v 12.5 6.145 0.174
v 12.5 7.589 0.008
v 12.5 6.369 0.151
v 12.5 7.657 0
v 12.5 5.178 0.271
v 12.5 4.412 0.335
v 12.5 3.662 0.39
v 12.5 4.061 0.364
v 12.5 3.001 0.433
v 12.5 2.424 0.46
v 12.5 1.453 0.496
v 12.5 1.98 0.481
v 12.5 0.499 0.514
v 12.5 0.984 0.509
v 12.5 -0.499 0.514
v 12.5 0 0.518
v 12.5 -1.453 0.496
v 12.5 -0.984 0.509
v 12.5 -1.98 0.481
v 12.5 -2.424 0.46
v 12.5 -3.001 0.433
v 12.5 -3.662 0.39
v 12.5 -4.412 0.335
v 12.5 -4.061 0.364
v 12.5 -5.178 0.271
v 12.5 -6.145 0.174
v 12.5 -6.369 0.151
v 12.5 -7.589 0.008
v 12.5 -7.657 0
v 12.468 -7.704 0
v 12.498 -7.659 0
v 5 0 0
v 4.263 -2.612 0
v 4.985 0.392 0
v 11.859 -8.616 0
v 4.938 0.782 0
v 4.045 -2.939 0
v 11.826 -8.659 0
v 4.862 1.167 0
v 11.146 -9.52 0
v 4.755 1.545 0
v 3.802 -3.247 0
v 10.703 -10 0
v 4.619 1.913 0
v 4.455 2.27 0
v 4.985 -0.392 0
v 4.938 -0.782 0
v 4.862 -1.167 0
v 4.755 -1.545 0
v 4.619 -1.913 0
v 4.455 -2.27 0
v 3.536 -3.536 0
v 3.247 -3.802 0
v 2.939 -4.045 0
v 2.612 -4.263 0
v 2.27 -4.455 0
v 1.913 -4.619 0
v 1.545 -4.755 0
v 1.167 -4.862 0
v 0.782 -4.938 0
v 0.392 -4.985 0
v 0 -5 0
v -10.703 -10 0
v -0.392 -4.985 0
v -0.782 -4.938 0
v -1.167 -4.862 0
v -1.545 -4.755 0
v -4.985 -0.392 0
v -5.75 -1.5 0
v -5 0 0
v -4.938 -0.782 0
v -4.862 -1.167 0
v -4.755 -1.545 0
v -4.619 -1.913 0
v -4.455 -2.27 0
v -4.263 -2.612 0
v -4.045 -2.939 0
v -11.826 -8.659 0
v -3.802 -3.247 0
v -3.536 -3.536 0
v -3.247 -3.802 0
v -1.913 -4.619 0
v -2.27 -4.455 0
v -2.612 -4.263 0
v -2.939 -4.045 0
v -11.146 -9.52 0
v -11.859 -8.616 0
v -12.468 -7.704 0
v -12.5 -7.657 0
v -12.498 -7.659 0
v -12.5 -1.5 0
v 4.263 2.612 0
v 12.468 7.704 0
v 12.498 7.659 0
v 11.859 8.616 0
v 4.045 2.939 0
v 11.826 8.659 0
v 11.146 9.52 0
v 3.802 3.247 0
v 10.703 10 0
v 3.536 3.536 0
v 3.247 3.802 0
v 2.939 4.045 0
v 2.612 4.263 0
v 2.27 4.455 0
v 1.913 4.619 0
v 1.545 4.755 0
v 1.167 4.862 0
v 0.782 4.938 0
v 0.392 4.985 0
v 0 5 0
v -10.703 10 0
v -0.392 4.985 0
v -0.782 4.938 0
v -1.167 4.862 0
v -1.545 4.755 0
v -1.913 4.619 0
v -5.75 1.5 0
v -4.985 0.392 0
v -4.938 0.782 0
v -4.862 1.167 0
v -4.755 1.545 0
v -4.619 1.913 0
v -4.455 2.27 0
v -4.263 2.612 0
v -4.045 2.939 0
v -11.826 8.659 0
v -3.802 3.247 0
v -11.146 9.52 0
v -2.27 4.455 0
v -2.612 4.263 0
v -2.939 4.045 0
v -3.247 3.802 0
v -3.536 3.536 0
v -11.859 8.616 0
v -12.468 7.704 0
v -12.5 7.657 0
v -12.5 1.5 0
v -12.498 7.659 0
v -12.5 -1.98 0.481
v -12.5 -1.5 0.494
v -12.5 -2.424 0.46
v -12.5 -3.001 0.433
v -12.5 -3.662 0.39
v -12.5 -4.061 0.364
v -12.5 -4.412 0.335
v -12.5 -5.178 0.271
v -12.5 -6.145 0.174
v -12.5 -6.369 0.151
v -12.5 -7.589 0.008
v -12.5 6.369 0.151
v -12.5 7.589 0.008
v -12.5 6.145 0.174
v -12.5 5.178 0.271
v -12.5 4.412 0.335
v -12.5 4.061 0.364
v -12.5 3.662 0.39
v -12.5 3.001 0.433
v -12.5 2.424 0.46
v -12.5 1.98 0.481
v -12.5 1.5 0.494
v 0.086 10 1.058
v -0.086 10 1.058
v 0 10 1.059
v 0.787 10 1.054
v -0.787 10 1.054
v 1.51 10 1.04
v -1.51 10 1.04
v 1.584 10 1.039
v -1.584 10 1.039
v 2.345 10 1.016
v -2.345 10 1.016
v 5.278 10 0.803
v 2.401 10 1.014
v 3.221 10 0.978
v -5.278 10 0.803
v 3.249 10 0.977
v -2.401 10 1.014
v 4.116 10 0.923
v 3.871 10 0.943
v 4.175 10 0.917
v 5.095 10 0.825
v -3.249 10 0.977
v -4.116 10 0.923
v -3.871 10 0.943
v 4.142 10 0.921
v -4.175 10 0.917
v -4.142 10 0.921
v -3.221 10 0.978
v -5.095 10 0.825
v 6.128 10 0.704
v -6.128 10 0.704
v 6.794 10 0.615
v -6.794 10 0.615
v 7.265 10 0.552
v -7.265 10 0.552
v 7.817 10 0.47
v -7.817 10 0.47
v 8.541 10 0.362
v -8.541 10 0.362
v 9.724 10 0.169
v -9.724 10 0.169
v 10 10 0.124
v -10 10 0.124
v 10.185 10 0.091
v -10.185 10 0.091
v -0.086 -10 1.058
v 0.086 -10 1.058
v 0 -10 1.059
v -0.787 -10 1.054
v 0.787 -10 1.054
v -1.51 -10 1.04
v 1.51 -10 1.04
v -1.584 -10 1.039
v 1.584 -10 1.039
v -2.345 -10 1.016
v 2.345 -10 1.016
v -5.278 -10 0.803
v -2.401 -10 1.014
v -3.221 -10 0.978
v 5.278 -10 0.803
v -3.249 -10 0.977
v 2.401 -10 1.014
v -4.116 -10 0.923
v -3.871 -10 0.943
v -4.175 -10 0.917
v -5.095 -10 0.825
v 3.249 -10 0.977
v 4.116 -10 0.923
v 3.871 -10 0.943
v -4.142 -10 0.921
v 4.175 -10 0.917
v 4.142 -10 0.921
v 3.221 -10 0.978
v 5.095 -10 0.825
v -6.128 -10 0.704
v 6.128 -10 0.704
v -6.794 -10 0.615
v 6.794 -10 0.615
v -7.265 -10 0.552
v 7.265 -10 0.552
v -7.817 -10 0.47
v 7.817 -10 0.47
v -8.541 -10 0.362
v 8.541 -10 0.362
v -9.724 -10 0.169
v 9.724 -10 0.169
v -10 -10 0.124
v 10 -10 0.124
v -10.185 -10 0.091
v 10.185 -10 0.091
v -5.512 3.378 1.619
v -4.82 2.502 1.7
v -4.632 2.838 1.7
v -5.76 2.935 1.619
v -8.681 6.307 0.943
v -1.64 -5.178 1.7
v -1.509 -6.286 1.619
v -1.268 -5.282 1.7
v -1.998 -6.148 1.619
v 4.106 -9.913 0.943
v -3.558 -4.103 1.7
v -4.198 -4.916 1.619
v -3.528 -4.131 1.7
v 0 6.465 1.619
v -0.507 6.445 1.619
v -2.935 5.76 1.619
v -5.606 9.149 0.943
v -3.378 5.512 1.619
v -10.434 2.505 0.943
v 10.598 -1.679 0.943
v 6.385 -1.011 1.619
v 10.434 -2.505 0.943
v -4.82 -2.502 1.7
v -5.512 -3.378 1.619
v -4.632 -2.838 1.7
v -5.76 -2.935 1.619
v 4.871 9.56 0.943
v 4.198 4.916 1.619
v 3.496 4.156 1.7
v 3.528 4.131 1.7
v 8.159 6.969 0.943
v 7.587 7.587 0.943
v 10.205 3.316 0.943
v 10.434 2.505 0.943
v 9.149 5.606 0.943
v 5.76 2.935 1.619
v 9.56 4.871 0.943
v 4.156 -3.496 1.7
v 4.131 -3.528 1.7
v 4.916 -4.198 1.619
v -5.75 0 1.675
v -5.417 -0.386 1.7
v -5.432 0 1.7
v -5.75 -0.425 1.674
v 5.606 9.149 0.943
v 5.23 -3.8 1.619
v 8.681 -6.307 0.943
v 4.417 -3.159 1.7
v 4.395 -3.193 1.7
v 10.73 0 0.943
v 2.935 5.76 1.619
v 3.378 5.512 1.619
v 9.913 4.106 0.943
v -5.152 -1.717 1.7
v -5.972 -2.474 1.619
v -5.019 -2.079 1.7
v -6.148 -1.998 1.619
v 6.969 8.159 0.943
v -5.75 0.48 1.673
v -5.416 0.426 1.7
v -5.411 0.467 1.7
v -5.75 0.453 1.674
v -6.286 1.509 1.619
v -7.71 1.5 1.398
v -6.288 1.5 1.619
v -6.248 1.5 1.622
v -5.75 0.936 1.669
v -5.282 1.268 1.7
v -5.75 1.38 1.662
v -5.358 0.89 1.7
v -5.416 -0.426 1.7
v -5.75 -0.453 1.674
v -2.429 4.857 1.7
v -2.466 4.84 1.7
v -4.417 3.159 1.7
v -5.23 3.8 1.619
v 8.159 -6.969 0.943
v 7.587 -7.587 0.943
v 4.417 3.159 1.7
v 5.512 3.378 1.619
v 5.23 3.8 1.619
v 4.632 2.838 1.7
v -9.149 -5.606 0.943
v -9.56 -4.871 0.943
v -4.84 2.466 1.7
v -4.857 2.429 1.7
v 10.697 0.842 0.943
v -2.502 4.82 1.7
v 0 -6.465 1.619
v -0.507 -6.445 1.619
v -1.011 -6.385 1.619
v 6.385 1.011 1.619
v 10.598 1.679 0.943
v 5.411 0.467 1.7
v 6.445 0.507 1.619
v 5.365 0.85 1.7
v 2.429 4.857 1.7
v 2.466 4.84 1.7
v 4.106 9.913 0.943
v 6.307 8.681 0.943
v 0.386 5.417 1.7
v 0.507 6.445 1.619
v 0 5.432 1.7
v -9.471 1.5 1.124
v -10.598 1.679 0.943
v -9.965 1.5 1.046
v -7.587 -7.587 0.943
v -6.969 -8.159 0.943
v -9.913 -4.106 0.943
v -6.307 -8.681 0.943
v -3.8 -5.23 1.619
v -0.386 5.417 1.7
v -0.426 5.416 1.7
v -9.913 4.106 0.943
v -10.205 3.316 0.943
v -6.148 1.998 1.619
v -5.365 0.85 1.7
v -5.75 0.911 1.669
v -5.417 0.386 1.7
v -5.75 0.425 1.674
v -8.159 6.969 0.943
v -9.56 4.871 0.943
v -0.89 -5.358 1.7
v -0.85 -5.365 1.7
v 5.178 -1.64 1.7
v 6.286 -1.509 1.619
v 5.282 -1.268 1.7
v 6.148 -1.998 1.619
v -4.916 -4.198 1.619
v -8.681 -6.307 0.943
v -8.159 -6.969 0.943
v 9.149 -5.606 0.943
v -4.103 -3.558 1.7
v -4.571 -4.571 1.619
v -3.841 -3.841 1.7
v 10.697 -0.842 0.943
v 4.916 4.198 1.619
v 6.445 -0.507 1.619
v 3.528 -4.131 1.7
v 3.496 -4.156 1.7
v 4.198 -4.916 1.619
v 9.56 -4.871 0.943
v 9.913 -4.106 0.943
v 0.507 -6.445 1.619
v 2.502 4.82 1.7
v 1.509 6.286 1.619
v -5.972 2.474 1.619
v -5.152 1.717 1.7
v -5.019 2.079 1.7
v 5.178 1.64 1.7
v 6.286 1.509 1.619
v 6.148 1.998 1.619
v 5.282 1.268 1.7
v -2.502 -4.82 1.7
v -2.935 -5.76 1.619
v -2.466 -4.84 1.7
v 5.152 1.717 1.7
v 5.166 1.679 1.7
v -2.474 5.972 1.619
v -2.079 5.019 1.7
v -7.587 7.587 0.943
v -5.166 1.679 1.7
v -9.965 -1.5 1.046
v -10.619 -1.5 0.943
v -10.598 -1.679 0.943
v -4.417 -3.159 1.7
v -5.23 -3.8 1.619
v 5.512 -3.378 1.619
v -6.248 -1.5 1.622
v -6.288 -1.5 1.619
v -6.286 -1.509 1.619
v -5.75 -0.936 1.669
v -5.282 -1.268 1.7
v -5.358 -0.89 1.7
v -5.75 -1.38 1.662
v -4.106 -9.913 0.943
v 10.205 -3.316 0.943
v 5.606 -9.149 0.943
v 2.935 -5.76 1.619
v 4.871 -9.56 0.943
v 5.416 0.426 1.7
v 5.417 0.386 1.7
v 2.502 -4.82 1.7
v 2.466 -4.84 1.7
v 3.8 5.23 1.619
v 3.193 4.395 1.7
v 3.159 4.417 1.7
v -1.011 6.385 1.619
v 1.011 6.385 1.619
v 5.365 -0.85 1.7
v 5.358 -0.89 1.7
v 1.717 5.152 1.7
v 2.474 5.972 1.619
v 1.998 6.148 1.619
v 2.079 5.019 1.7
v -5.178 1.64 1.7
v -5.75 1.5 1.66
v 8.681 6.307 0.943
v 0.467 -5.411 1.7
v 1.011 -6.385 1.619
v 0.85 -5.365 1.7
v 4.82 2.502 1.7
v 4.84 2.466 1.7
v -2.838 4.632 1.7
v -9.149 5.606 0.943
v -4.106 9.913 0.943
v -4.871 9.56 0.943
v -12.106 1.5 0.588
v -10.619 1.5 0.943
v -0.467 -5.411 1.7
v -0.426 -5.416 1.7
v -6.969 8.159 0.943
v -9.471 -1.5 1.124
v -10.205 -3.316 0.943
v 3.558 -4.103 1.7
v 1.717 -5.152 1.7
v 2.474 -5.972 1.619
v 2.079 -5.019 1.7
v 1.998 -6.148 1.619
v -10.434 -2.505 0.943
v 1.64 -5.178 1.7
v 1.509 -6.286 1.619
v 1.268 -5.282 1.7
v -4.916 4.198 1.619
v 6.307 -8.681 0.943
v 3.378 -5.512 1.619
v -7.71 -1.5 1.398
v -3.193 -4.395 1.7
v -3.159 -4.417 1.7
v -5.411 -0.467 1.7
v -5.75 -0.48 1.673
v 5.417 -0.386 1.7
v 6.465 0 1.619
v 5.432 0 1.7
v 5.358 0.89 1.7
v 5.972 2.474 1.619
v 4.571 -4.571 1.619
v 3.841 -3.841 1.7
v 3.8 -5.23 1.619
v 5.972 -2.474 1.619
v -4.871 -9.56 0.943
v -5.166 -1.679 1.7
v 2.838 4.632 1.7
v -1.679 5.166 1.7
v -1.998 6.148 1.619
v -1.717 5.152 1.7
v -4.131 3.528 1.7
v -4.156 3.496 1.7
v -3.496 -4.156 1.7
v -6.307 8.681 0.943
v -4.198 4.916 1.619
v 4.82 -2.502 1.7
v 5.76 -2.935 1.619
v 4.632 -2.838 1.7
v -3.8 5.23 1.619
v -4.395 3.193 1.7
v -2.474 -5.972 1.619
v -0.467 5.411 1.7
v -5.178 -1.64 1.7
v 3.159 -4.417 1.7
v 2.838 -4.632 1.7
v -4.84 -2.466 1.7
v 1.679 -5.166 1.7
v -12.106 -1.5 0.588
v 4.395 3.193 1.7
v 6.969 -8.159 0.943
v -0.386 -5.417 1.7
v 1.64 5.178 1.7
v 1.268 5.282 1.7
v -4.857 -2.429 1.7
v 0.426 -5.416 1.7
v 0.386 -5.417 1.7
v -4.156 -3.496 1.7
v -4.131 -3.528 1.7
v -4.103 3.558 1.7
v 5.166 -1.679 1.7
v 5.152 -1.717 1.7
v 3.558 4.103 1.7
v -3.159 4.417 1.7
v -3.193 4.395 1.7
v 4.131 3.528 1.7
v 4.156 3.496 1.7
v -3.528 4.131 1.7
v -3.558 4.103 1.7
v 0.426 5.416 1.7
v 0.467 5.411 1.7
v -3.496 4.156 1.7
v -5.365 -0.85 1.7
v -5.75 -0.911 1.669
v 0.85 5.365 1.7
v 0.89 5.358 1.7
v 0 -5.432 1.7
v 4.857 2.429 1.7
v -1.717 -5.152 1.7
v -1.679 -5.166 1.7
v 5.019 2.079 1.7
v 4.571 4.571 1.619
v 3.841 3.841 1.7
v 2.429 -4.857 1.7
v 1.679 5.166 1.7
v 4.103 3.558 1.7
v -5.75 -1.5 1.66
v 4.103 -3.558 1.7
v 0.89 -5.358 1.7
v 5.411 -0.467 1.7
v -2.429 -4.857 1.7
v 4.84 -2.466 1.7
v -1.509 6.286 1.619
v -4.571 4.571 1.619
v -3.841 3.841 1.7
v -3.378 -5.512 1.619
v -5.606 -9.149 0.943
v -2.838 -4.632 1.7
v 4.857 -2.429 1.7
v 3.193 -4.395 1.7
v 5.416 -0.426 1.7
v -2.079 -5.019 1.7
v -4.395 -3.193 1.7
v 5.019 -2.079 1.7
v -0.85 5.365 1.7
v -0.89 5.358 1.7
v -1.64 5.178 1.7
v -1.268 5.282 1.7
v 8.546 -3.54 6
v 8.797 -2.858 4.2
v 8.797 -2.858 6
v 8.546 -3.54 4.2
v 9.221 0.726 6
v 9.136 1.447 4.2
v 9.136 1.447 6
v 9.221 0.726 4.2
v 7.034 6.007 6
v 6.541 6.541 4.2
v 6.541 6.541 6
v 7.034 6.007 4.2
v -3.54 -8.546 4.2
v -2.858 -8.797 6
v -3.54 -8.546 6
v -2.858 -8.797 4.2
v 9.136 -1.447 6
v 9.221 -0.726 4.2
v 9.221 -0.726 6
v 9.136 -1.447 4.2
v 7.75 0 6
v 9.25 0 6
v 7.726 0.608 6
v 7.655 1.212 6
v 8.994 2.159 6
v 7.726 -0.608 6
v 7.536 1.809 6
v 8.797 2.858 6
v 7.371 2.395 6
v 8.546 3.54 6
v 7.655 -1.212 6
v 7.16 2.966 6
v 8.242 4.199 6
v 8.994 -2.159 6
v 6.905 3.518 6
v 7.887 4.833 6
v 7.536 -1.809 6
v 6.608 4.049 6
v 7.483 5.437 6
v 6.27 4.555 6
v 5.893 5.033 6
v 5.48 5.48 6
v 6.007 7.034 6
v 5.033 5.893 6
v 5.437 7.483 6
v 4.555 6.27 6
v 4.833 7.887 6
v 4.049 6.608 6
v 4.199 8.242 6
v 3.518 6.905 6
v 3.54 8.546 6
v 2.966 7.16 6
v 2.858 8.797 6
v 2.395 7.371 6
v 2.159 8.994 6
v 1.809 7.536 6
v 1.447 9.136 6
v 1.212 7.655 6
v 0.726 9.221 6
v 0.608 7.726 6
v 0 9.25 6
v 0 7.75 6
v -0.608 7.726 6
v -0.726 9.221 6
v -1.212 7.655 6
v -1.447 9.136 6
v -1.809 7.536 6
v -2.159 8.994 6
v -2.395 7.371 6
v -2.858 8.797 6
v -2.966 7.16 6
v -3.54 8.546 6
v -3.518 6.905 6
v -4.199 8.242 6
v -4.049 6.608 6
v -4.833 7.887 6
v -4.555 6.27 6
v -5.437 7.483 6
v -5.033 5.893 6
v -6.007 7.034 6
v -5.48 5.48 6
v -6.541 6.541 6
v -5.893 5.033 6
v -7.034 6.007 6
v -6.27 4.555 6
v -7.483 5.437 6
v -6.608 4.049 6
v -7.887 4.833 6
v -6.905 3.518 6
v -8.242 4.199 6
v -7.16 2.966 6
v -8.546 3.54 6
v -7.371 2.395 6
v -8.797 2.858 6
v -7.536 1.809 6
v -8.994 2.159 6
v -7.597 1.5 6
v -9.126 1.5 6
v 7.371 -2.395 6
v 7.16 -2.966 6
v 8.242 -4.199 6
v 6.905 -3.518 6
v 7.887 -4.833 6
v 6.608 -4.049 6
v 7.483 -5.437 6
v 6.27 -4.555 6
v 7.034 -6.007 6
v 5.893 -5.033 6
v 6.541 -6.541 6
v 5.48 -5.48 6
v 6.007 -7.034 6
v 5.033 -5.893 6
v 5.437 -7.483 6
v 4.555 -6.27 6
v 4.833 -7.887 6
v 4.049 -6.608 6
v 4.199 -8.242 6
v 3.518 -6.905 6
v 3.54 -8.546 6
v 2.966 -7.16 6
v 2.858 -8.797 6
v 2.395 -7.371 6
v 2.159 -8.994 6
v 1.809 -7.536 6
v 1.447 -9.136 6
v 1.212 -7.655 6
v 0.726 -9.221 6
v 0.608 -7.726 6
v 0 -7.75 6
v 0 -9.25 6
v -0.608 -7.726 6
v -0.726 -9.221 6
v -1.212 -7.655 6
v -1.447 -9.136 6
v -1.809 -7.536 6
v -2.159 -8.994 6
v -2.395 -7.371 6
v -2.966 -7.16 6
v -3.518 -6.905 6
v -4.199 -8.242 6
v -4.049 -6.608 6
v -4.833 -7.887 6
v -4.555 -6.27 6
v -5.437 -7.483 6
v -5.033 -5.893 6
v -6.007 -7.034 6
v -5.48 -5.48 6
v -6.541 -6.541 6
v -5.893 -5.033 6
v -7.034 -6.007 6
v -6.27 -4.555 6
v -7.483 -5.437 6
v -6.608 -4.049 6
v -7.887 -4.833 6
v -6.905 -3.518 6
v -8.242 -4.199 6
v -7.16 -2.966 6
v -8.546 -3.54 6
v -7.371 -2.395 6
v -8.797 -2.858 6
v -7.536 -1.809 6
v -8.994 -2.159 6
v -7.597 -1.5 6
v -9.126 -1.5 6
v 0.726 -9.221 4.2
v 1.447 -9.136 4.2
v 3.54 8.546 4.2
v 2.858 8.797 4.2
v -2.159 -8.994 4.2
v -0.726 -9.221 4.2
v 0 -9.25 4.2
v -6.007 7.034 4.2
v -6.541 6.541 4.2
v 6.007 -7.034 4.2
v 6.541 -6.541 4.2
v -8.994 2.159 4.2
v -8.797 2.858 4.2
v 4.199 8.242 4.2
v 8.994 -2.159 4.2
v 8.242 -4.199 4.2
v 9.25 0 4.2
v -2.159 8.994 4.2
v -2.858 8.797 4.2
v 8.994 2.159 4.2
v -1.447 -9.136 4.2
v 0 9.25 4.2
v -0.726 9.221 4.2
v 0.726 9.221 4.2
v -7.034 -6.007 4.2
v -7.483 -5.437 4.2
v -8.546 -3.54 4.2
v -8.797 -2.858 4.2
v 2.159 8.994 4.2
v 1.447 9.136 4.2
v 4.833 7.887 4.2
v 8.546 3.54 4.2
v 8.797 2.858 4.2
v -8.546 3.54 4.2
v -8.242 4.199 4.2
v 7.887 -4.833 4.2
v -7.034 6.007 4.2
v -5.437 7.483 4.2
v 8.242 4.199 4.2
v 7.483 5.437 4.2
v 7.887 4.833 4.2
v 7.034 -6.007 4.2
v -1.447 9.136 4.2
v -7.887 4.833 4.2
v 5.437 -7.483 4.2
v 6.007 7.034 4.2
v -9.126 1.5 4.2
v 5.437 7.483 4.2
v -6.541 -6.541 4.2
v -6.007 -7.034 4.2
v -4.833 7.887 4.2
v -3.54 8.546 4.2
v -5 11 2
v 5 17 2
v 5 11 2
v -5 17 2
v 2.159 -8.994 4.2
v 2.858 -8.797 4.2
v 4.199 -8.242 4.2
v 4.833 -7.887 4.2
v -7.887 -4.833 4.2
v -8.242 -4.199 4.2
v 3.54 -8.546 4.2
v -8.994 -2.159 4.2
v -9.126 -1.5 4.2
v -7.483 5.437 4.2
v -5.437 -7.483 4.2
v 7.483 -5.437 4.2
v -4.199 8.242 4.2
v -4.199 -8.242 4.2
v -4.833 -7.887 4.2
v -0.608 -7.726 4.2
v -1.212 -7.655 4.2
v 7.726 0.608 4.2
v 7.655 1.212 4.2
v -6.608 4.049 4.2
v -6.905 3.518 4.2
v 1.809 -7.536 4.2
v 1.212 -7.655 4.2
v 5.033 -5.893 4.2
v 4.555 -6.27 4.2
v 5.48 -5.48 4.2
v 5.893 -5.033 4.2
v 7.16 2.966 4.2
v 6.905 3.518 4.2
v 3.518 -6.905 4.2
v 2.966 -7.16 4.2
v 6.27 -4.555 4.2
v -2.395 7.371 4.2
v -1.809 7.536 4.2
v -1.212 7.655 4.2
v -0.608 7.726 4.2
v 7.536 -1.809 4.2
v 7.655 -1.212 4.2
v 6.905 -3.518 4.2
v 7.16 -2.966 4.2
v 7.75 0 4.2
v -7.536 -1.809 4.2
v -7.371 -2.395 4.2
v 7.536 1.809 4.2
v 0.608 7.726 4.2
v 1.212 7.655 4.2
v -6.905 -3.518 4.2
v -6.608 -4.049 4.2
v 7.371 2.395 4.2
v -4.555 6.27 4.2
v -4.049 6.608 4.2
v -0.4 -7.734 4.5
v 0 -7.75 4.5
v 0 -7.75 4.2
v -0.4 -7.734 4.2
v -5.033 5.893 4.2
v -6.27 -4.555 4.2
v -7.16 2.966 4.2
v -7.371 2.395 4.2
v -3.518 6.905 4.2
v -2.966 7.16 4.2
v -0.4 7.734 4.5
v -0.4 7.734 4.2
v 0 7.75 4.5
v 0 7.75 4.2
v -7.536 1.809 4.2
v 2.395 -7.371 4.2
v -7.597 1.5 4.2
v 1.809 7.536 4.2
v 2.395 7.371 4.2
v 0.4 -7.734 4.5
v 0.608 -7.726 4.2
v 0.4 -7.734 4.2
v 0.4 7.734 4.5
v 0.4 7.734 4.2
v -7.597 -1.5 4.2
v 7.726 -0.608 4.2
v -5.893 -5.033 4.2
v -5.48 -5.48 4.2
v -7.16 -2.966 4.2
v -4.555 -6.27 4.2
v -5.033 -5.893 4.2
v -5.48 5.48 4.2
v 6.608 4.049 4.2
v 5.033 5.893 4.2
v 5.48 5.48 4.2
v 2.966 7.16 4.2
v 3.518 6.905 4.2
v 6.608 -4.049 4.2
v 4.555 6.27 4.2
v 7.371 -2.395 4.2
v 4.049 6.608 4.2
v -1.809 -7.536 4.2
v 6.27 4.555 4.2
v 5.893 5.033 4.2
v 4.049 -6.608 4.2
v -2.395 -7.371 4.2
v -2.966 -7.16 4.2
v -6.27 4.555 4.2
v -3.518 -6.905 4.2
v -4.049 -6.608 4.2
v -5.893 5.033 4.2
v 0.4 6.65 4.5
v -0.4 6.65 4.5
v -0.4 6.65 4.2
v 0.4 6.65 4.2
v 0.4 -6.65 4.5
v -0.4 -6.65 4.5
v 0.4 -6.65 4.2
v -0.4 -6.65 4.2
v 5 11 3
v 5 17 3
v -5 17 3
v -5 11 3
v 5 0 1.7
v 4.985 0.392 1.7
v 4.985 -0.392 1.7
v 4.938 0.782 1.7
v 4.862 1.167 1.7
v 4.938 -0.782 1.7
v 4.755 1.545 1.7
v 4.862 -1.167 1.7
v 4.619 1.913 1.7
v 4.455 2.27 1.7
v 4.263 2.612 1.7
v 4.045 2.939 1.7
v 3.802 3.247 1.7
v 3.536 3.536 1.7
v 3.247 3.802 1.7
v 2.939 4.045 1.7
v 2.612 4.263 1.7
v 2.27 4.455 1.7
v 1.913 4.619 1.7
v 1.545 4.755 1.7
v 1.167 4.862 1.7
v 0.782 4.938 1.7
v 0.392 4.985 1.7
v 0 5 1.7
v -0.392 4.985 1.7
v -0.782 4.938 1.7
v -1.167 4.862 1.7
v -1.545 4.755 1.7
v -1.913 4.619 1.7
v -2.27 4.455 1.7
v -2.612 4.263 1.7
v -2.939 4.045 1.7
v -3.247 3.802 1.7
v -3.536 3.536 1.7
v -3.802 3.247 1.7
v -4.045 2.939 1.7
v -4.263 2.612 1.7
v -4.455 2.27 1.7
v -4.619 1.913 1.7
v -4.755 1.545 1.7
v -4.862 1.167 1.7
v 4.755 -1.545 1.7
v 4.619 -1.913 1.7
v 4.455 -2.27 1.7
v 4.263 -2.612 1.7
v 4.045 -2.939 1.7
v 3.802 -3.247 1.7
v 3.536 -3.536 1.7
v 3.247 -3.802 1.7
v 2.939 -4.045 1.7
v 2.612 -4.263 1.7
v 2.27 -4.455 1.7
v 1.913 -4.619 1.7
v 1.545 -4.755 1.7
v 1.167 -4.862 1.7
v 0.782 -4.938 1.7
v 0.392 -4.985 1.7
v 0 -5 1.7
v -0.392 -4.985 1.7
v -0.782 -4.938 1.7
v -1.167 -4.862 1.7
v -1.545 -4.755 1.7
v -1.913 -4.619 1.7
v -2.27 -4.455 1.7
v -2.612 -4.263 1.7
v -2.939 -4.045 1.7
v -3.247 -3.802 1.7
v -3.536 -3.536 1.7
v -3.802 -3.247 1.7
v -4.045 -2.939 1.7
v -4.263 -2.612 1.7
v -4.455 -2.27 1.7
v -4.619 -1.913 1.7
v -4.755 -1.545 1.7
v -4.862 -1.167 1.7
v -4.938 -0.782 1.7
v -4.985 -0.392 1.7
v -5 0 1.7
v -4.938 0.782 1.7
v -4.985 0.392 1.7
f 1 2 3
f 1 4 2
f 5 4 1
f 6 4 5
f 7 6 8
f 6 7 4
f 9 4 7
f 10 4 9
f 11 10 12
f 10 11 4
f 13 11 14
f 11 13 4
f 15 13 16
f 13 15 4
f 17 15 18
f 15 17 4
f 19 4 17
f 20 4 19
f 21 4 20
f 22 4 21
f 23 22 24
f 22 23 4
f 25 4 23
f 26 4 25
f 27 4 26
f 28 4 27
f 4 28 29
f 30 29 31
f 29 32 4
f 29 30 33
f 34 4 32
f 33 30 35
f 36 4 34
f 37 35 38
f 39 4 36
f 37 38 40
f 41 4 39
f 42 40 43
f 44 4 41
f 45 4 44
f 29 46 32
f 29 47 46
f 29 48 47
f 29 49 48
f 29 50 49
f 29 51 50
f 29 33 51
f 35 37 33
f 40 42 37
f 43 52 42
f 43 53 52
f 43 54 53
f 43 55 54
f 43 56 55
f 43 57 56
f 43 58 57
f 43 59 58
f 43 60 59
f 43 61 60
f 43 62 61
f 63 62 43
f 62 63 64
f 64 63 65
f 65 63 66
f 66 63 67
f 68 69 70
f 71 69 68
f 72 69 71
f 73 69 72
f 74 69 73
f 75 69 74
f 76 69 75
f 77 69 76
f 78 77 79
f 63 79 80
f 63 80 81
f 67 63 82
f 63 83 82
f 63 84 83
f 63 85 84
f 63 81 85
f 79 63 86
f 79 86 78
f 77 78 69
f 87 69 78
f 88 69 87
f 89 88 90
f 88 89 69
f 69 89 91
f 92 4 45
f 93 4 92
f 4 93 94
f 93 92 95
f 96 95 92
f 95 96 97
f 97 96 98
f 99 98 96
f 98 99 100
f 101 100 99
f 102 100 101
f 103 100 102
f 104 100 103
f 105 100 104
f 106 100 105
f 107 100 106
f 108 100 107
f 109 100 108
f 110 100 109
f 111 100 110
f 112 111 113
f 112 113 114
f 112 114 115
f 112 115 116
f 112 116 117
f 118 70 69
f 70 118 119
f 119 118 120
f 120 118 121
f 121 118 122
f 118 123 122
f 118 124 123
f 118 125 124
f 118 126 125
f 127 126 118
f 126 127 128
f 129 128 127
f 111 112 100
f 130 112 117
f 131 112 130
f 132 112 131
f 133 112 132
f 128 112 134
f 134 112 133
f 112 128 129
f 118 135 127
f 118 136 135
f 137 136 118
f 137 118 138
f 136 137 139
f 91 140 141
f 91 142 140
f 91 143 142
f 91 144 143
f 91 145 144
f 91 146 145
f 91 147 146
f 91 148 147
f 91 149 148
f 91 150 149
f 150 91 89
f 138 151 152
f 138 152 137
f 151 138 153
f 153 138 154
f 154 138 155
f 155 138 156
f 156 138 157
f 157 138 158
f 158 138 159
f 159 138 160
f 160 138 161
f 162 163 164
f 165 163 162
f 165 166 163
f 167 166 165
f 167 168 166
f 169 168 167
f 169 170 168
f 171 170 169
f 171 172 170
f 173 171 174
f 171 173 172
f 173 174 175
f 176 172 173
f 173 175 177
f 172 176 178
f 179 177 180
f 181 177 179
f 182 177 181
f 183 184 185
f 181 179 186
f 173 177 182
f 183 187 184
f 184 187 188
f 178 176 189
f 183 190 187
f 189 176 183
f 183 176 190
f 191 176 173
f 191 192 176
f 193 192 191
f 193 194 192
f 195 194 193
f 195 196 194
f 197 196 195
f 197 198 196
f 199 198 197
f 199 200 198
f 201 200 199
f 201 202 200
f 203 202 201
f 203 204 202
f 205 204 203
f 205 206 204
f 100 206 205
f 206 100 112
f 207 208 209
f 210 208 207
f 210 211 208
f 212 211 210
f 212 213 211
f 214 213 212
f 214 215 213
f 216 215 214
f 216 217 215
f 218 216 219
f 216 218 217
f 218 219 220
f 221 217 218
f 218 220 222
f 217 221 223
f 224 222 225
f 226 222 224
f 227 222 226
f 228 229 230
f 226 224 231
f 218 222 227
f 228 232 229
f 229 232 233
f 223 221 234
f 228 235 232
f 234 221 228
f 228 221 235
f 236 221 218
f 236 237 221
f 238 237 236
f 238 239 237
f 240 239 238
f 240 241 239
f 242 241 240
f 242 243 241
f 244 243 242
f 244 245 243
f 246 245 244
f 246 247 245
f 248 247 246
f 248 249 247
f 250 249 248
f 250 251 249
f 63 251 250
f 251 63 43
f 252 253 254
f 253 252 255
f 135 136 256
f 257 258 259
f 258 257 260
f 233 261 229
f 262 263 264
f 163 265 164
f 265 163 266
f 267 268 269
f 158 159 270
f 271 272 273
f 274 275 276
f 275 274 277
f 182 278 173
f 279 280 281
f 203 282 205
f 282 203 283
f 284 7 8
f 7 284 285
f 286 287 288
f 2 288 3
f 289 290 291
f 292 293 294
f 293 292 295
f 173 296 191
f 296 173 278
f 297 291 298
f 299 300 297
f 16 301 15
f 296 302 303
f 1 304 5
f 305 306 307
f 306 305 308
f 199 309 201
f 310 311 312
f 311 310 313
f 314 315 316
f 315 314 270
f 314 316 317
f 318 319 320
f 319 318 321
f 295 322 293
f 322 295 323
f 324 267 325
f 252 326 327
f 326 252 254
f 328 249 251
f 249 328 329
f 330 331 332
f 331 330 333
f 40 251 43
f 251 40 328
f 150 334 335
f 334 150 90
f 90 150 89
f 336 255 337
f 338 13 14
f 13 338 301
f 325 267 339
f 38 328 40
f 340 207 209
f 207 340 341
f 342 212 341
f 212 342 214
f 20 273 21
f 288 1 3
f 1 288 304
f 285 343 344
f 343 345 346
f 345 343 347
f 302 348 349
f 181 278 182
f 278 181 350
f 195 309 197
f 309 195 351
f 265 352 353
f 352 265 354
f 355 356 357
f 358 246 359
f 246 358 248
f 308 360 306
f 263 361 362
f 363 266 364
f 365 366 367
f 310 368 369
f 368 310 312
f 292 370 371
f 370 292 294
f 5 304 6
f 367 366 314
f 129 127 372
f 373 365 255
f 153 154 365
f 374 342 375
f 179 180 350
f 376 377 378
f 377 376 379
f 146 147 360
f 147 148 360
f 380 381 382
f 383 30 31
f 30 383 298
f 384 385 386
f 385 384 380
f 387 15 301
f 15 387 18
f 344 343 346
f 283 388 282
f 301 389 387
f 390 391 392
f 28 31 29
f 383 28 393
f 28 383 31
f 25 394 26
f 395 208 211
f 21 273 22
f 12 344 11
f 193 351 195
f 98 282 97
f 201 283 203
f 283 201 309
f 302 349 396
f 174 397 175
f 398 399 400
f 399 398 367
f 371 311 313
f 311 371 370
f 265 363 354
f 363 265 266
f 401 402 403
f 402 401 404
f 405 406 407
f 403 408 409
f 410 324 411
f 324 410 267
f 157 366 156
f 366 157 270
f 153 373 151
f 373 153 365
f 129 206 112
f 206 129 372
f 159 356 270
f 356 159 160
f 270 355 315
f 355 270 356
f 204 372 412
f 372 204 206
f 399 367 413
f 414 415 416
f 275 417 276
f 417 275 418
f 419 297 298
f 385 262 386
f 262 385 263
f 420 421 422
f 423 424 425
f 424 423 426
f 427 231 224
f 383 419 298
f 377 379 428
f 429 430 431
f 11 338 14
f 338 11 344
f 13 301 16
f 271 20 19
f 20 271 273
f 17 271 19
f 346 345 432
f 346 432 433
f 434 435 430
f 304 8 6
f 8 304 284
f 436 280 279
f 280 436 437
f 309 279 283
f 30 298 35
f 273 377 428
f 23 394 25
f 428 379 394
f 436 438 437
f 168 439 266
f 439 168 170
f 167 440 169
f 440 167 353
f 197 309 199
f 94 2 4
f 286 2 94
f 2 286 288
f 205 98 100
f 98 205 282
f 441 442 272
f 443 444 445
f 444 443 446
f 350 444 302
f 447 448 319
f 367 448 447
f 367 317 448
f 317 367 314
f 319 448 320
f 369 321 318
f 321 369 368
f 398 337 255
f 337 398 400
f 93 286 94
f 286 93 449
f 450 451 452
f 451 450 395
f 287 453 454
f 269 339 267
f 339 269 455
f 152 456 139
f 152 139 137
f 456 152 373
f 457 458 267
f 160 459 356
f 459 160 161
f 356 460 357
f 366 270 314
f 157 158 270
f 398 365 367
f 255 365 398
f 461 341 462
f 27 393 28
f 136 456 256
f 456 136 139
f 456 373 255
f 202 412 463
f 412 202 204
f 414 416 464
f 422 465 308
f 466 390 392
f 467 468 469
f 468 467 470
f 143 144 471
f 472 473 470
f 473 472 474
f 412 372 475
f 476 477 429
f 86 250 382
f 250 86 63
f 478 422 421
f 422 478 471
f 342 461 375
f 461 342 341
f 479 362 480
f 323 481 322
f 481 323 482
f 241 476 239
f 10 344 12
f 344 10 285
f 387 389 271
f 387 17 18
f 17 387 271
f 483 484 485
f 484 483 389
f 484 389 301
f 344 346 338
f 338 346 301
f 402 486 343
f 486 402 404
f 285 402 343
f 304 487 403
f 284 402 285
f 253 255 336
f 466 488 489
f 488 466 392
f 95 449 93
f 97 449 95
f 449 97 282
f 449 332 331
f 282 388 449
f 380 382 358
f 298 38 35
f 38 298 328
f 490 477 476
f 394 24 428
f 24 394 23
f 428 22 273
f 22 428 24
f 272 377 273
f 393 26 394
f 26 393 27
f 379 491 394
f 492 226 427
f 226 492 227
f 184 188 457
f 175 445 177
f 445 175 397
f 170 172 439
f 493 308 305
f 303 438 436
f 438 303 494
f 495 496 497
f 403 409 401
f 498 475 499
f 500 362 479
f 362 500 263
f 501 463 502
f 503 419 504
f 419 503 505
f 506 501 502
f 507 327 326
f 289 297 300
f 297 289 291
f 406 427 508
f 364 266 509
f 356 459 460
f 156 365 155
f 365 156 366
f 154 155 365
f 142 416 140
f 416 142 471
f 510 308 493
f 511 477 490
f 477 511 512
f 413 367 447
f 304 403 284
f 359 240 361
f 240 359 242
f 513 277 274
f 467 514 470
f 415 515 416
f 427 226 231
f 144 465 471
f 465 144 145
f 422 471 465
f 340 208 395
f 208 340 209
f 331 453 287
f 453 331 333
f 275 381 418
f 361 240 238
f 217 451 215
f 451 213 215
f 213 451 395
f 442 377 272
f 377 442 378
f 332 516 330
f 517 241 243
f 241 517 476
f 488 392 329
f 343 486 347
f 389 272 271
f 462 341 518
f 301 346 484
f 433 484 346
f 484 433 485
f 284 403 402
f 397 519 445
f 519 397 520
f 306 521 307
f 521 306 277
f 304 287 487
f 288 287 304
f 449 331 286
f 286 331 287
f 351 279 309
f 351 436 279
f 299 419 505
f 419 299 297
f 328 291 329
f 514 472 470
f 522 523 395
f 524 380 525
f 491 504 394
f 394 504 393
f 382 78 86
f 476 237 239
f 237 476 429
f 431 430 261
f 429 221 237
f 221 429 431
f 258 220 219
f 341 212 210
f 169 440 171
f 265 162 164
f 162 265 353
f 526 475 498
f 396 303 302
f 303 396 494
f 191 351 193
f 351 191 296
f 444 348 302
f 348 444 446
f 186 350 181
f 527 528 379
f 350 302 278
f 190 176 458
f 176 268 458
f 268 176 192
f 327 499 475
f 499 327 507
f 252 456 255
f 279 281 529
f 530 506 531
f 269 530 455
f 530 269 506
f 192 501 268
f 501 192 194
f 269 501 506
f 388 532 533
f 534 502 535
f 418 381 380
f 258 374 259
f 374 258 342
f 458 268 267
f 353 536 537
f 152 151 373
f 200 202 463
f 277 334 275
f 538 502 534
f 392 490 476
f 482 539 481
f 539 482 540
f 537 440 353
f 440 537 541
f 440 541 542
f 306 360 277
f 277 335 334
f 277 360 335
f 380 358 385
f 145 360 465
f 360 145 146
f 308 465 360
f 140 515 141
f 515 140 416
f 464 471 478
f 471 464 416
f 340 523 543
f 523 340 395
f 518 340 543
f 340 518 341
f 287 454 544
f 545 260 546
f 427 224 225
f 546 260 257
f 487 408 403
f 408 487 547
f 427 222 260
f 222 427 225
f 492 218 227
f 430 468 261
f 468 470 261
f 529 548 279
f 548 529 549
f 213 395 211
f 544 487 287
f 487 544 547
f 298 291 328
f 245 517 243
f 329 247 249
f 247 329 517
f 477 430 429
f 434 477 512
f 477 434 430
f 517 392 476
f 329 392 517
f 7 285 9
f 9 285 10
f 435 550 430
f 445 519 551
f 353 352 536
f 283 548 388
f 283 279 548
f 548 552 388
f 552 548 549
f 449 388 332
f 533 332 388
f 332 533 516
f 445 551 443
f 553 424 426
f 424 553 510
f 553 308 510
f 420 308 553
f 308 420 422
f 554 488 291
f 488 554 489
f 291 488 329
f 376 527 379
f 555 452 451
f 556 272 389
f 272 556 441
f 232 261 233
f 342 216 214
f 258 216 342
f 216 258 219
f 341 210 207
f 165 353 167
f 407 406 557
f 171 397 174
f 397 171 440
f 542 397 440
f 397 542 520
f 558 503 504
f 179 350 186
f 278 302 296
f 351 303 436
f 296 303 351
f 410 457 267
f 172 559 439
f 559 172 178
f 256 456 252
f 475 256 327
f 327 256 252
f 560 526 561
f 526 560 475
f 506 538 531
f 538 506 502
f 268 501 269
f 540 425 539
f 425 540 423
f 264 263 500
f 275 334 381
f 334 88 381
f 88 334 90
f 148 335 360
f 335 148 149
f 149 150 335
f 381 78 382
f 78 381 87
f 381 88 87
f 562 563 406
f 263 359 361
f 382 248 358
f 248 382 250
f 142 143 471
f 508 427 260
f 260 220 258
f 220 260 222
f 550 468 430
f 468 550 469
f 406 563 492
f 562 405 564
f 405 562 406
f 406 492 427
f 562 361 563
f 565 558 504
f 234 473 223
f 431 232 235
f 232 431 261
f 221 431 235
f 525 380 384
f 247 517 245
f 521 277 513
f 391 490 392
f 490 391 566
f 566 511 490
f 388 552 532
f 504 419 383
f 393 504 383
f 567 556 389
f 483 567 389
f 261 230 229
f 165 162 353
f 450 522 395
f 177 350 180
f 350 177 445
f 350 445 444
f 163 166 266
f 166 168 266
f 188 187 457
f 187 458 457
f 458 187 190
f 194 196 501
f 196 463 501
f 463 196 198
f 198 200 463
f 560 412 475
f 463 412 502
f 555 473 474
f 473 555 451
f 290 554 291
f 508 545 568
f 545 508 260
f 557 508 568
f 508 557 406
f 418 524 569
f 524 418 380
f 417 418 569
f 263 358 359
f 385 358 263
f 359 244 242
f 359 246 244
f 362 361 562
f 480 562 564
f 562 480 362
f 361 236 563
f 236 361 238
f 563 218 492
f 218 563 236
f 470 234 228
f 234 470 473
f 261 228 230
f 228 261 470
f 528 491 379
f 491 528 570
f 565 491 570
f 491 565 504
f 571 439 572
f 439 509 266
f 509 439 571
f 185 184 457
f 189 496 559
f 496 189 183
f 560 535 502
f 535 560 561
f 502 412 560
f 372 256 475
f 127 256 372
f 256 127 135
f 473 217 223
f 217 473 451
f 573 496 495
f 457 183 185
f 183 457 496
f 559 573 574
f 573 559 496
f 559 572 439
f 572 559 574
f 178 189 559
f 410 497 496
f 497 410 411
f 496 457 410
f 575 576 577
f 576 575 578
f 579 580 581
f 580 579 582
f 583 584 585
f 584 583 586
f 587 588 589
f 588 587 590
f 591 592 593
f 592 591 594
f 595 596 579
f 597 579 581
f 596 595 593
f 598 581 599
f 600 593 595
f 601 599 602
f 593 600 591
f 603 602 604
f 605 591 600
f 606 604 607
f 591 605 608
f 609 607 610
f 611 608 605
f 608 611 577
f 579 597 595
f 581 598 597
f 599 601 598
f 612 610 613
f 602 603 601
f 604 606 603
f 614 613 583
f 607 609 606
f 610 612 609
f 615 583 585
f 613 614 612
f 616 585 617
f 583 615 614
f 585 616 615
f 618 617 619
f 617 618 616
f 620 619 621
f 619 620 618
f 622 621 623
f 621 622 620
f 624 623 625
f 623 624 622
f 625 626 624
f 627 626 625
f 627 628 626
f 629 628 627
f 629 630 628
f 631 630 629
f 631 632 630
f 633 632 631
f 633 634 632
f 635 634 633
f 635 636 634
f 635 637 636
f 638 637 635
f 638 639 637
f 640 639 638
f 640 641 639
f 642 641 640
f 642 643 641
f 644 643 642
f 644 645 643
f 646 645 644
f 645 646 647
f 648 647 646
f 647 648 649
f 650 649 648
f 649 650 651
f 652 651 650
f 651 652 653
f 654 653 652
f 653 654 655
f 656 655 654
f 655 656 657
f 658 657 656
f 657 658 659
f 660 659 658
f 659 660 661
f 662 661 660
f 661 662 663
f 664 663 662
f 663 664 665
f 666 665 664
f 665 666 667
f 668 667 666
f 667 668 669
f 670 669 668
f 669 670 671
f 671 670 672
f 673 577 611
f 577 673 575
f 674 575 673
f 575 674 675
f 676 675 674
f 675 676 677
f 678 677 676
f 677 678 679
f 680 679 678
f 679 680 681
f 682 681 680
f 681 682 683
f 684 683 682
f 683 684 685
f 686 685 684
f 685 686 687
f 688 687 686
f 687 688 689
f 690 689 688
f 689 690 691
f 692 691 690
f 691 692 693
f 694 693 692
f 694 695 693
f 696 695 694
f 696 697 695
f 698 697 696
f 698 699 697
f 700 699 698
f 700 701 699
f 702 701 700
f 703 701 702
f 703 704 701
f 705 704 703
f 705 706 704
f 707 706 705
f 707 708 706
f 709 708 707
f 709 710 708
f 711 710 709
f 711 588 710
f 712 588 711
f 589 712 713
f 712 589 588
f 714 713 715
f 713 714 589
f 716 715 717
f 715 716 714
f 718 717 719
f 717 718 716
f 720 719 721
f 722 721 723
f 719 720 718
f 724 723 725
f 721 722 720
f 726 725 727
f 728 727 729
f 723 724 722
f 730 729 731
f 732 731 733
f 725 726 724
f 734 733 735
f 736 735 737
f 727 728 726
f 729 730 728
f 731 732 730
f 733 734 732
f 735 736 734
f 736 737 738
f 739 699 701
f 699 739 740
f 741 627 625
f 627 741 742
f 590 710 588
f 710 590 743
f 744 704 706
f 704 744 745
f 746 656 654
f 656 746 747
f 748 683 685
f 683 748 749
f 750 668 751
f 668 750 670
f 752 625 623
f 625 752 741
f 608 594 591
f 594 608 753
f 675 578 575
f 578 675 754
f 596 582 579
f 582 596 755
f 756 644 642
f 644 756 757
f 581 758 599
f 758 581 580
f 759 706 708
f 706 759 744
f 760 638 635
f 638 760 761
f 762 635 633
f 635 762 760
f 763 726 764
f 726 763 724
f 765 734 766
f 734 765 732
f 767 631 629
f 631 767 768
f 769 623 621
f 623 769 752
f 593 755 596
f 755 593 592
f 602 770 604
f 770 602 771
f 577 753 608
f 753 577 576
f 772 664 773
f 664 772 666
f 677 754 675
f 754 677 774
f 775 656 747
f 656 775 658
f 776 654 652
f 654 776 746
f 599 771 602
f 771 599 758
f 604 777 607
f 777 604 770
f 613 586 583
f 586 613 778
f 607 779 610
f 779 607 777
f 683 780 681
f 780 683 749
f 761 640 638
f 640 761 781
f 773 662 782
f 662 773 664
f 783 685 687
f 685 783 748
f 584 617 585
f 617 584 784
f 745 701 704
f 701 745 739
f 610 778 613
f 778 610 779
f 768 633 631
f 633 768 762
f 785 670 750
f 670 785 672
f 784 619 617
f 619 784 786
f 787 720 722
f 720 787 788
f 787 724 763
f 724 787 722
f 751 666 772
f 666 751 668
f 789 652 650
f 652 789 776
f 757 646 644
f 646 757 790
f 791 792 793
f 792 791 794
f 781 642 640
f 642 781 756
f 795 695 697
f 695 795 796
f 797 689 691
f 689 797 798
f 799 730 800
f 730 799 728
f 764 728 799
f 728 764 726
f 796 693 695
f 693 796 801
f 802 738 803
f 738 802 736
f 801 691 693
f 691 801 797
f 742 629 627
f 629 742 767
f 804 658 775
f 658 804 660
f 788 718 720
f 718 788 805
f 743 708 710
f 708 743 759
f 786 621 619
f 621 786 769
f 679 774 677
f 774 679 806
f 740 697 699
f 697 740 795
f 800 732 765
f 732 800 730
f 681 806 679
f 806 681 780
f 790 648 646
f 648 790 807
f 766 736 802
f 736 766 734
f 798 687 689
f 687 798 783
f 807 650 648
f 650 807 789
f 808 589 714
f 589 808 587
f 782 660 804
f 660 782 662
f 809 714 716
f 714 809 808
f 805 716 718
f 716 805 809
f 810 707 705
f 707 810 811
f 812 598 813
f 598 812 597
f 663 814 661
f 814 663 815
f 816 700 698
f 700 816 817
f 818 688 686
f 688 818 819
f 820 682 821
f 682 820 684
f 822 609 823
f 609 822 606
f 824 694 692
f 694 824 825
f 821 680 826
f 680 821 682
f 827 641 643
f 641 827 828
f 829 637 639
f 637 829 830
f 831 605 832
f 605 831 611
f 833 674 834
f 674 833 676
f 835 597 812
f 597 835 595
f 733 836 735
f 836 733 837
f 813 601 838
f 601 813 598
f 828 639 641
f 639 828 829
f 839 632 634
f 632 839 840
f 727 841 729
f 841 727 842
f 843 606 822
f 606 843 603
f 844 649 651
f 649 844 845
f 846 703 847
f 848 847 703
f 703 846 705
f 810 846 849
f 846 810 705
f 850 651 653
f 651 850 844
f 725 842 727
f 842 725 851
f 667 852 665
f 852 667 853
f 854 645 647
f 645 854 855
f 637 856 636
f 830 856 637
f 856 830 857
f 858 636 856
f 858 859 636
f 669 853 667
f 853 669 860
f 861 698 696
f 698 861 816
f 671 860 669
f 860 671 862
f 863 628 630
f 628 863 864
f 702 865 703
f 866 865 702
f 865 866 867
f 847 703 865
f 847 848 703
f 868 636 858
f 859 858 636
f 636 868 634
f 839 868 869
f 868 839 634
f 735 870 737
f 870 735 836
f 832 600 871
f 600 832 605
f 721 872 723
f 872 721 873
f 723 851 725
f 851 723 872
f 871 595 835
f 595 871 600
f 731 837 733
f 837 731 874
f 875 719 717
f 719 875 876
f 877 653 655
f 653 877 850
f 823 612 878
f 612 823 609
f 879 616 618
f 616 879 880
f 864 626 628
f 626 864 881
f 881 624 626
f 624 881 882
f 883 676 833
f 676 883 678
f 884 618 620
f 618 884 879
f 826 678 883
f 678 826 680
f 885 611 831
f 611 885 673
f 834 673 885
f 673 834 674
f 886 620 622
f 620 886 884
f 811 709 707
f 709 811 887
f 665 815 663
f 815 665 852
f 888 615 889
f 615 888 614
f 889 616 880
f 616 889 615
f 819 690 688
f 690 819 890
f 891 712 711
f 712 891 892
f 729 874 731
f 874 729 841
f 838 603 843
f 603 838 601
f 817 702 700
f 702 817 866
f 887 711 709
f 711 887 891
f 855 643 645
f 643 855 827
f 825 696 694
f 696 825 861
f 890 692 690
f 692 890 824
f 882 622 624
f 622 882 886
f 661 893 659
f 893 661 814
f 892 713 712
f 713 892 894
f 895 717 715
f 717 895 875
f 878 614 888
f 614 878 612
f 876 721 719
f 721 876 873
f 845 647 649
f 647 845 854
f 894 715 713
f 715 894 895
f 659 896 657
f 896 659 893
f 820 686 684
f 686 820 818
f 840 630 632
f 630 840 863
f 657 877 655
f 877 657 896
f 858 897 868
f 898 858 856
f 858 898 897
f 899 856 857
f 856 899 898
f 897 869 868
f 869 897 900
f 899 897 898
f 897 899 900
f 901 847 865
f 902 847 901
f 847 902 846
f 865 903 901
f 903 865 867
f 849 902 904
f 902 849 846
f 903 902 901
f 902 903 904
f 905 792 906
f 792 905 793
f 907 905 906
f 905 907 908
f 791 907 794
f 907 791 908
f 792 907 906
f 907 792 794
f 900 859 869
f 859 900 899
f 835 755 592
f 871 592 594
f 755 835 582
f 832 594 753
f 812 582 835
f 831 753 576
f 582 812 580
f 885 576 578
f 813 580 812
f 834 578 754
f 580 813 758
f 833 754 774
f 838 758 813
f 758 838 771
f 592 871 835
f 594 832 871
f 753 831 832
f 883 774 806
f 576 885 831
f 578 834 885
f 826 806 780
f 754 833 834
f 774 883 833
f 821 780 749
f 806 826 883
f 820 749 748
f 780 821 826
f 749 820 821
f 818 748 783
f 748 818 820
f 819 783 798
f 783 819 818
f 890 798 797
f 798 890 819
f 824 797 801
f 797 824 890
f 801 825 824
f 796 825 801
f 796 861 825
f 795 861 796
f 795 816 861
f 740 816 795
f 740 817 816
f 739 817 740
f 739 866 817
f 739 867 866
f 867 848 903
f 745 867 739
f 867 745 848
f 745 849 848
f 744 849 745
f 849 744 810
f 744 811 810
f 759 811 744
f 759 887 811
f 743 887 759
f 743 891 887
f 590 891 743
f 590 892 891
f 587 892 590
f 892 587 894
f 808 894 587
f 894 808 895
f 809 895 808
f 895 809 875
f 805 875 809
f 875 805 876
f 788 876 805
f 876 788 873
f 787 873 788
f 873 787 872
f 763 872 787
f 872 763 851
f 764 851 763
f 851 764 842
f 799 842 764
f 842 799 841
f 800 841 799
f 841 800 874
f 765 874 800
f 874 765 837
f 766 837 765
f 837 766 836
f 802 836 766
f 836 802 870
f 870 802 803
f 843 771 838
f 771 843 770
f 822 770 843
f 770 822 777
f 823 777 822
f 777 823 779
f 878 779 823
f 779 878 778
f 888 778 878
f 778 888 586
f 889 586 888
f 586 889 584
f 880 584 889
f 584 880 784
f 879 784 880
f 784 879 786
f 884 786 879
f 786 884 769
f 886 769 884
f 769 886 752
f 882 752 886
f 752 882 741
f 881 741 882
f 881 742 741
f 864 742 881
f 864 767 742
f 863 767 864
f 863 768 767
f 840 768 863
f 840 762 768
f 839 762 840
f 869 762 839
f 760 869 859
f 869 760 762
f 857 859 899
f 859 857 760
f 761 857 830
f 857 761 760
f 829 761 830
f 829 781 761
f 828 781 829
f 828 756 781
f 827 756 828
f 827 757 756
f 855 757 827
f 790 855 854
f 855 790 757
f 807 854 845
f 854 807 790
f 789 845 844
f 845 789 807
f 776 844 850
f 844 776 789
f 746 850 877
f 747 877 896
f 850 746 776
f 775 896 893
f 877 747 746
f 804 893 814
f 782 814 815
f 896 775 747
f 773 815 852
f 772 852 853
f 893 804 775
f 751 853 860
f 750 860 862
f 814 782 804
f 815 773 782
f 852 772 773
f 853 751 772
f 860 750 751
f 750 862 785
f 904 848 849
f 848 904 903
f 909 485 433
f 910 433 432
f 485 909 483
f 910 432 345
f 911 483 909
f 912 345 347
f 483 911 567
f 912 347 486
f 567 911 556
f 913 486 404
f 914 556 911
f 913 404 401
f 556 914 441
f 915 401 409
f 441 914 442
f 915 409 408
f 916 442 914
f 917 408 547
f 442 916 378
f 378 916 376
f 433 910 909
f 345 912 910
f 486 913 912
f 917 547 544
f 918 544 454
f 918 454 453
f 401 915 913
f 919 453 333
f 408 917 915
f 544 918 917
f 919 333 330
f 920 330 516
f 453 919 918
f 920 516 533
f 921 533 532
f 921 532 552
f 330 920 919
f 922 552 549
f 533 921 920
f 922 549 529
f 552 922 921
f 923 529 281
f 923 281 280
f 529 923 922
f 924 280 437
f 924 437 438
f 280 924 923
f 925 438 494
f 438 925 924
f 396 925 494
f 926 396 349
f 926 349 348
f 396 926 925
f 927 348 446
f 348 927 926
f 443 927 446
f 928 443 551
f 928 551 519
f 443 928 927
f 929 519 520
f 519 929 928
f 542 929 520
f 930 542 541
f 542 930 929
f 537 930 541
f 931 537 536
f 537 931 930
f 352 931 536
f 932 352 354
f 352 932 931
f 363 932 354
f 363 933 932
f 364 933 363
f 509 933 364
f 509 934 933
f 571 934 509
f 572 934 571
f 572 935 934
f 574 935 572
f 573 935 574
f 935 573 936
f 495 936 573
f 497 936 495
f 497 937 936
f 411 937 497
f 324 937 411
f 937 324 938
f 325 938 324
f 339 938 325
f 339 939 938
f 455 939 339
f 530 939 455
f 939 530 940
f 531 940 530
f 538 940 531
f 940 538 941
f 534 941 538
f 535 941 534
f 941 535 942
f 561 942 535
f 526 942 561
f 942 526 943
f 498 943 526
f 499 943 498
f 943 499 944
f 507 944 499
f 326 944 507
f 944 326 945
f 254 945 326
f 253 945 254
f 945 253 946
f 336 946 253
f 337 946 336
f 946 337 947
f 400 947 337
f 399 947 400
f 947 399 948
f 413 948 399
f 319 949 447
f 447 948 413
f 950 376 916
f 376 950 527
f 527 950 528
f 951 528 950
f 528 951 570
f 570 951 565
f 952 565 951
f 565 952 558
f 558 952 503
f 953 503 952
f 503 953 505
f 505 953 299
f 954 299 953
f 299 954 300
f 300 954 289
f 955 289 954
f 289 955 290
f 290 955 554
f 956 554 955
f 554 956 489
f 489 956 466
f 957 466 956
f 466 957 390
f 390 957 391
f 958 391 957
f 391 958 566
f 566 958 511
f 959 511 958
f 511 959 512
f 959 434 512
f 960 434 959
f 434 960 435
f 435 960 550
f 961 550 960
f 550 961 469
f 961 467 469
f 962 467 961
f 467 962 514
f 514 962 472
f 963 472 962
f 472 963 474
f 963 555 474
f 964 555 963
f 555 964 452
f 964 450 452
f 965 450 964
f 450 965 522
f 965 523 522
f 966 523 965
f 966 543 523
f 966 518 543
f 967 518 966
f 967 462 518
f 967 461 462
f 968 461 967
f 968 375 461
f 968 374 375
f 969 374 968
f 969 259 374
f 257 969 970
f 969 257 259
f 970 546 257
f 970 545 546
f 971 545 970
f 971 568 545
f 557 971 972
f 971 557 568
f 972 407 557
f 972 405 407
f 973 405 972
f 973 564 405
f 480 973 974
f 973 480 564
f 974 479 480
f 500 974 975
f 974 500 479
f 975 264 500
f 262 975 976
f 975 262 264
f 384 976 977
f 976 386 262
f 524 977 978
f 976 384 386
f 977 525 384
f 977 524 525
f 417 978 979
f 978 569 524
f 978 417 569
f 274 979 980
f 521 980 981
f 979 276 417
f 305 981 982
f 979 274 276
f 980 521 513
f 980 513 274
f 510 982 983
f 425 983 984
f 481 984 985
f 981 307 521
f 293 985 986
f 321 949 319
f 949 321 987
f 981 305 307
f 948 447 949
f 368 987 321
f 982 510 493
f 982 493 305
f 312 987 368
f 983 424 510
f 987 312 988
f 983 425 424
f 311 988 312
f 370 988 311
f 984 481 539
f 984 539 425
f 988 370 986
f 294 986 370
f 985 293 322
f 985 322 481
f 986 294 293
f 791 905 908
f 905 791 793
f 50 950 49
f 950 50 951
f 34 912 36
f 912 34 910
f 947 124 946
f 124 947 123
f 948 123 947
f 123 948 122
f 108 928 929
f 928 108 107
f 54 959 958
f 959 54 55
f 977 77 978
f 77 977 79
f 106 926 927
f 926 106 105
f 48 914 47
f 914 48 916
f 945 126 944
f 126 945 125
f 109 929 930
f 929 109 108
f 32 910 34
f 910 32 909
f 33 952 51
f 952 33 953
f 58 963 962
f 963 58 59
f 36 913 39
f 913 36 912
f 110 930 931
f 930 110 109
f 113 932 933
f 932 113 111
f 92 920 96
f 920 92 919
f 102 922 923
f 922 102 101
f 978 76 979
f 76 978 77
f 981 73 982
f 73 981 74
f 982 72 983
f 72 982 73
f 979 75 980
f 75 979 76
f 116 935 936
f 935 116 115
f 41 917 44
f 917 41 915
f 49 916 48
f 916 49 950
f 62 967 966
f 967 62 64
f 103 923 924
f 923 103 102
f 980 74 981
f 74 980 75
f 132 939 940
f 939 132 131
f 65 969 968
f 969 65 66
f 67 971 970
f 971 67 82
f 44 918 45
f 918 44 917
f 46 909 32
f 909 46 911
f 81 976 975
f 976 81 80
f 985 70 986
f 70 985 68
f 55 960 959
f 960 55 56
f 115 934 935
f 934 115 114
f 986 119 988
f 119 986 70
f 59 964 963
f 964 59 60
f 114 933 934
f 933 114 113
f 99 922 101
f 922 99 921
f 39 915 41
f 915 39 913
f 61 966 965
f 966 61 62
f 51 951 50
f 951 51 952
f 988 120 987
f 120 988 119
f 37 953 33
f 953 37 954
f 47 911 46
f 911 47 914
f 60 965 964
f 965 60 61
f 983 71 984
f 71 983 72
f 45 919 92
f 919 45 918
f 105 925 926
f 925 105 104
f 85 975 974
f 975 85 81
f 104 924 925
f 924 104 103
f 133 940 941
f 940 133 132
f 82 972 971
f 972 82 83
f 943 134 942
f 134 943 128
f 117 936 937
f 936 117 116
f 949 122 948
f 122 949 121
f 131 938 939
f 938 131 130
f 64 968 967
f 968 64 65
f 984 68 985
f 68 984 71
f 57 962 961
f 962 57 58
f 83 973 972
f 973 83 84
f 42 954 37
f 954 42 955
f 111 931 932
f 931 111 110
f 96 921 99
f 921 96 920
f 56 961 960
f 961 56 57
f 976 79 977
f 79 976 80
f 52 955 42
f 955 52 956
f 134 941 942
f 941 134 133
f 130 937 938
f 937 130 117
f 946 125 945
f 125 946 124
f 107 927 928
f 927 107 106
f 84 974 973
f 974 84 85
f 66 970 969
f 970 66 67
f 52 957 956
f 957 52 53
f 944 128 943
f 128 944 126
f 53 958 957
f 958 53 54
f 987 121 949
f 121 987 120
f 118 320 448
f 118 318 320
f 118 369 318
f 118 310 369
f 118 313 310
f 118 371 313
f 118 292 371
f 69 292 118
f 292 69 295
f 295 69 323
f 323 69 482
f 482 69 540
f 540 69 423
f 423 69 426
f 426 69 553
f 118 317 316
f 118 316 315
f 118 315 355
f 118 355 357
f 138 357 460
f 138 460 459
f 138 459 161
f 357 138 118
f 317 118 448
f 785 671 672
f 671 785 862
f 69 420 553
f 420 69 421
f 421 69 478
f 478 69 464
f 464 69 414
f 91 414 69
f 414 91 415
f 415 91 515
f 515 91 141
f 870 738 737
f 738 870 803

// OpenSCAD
// ============================================================
// NeoGuard Neonatal Headband Mount — Forehead EEG Electrode
// For 15mm neonatal electrode on newborn skull
// ============================================================

// --- Head curvature (parametric — adjust for gestational age) ---
head_radius         = 55;        // newborn forehead curvature (mm)
                                 // Preterm: ~45mm, Term: ~55mm, Large: ~65mm

// --- Central forehead piece (smaller, thinner) ---
plate_w             = 25;        // width
plate_h             = 20;        // height
plate_t             = 2.0;       // thickness
min_wall            = 1.5;       // ultra-lightweight minimum wall

// --- Electrode pocket ---
pocket_dia          = 15.5;      // 15mm electrode + 0.5mm clearance
pocket_r            = pocket_dia / 2;
pocket_depth        = 4;         // shallower than adult
skin_hole_dia       = 10;        // opening for electrode pad
skin_hole_r         = skin_hole_dia / 2;

// --- Retention clips (2 only — smaller electrode) ---
clip_count          = 2;
clip_width          = 0.8;       // narrower
clip_height         = 2.5;       // shorter
clip_thickness      = 0.6;
clip_overhang       = 0.5;

// --- Cable exit ---
cable_groove_w      = 3.0;       // thinner neonatal cable
cable_groove_d      = 2.0;

// --- Band slots (narrow neonatal elastic) ---
band_width          = 15;        // narrow elastic for small head
band_slot_h         = 2.5;
band_slot_inset     = 1.5;

// --- Tape backup tab ---
// Flat area on top of the mount for medical tape attachment
// In case elastic band alone isn't sufficient for neonatal use
tape_tab_w          = 10;
tape_tab_d          = 8;
tape_tab_t          = 1.0;       // thin tab

// --- Extra-smooth edges for neonatal skin ---
fillet_r            = 0.5;       // larger fillets than adult (0.3)

$fn                 = 80;

// ============================================================
// Curved plate — tighter curvature for newborn skull
// ============================================================
module curved_plate() {
    intersection() {
        translate([-plate_w/2, -plate_h/2, 0])
            cube([plate_w, plate_h, plate_t + 10]);

        translate([0, 0, -head_radius + plate_t])
            sphere(r = head_radius);
    }
}

// ============================================================
// Pocket wall — thinner for lightweight design
// ============================================================
module pocket_wall() {
    wall_t = min_wall;
    translate([0, 0, plate_t]) {
        difference() {
            cylinder(r = pocket_r + wall_t, h = pocket_depth);
            translate([0, 0, -0.01])
                cylinder(r = pocket_r, h = pocket_depth + 0.02);
        }
    }
}

// ============================================================
// Skin-side hole
// ============================================================
module skin_hole() {
    translate([0, 0, -5])
        cylinder(r = skin_hole_r, h = plate_t + 12);
}

// ============================================================
// Retention clips — 2 clips for smaller electrode
// Positioned at 180° (left and right of pocket)
// ============================================================
module retention_clips() {
    for (i = [0 : clip_count - 1]) {
        angle = i * 360 / clip_count + 90;  // top and bottom
        rotate([0, 0, angle])
            translate([pocket_r - clip_thickness, -clip_width/2,
                       plate_t]) {
                cube([clip_thickness, clip_width, clip_height]);
                translate([-clip_overhang, 0, clip_height - 0.6])
                    cube([clip_overhang + 0.01, clip_width, 0.6]);
            }
    }
}

// ============================================================
// Cable exit groove — exits left
// ============================================================
module cable_exit_groove() {
    translate([-plate_w/2 - 1, -cable_groove_w/2, plate_t - cable_groove_d])
        cube([plate_w/2 + 1 - pocket_r + 2, cable_groove_w,
              cable_groove_d + pocket_depth + 1]);
}

// ============================================================
// Band slots — narrow neonatal elastic
// ============================================================
module band_slots() {
    for (side = [-1, 1]) {
        translate([side * (plate_w/2 - band_slot_inset - band_width/2),
                   0, 0]) {
            translate([-band_width/2, -plate_h/2 - 1, plate_t - 0.3])
                cube([band_width, plate_h + 2, band_slot_h]);
        }
    }
}

// ============================================================
// Tape backup tab — flat area on top for medical tape
// Provides secondary fixation for neonatal use where elastic
// band alone may not be sufficient or comfortable
// ============================================================
module tape_tab() {
    translate([-tape_tab_w/2, plate_h/2 - 1, plate_t]) {
        // Flat tab extending upward from top edge
        cube([tape_tab_w, tape_tab_d, tape_tab_t]);
    }
}

// ============================================================
// Edge rounding — apply extra fillets to all outer edges
// Critical for neonatal skin safety
// ============================================================
module rounded_body(body_module) {
    minkowski() {
        children();
        sphere(r = fillet_r/2, $fn = 16);
    }
}

// ============================================================
// Full assembly
// ============================================================
module neonatal_headband_mount() {
    difference() {
        union() {
            curved_plate();
            pocket_wall();
            retention_clips();
            tape_tab();
        }

        skin_hole();
        cable_exit_groove();
        band_slots();
    }
}

neonatal_headband_mount();
